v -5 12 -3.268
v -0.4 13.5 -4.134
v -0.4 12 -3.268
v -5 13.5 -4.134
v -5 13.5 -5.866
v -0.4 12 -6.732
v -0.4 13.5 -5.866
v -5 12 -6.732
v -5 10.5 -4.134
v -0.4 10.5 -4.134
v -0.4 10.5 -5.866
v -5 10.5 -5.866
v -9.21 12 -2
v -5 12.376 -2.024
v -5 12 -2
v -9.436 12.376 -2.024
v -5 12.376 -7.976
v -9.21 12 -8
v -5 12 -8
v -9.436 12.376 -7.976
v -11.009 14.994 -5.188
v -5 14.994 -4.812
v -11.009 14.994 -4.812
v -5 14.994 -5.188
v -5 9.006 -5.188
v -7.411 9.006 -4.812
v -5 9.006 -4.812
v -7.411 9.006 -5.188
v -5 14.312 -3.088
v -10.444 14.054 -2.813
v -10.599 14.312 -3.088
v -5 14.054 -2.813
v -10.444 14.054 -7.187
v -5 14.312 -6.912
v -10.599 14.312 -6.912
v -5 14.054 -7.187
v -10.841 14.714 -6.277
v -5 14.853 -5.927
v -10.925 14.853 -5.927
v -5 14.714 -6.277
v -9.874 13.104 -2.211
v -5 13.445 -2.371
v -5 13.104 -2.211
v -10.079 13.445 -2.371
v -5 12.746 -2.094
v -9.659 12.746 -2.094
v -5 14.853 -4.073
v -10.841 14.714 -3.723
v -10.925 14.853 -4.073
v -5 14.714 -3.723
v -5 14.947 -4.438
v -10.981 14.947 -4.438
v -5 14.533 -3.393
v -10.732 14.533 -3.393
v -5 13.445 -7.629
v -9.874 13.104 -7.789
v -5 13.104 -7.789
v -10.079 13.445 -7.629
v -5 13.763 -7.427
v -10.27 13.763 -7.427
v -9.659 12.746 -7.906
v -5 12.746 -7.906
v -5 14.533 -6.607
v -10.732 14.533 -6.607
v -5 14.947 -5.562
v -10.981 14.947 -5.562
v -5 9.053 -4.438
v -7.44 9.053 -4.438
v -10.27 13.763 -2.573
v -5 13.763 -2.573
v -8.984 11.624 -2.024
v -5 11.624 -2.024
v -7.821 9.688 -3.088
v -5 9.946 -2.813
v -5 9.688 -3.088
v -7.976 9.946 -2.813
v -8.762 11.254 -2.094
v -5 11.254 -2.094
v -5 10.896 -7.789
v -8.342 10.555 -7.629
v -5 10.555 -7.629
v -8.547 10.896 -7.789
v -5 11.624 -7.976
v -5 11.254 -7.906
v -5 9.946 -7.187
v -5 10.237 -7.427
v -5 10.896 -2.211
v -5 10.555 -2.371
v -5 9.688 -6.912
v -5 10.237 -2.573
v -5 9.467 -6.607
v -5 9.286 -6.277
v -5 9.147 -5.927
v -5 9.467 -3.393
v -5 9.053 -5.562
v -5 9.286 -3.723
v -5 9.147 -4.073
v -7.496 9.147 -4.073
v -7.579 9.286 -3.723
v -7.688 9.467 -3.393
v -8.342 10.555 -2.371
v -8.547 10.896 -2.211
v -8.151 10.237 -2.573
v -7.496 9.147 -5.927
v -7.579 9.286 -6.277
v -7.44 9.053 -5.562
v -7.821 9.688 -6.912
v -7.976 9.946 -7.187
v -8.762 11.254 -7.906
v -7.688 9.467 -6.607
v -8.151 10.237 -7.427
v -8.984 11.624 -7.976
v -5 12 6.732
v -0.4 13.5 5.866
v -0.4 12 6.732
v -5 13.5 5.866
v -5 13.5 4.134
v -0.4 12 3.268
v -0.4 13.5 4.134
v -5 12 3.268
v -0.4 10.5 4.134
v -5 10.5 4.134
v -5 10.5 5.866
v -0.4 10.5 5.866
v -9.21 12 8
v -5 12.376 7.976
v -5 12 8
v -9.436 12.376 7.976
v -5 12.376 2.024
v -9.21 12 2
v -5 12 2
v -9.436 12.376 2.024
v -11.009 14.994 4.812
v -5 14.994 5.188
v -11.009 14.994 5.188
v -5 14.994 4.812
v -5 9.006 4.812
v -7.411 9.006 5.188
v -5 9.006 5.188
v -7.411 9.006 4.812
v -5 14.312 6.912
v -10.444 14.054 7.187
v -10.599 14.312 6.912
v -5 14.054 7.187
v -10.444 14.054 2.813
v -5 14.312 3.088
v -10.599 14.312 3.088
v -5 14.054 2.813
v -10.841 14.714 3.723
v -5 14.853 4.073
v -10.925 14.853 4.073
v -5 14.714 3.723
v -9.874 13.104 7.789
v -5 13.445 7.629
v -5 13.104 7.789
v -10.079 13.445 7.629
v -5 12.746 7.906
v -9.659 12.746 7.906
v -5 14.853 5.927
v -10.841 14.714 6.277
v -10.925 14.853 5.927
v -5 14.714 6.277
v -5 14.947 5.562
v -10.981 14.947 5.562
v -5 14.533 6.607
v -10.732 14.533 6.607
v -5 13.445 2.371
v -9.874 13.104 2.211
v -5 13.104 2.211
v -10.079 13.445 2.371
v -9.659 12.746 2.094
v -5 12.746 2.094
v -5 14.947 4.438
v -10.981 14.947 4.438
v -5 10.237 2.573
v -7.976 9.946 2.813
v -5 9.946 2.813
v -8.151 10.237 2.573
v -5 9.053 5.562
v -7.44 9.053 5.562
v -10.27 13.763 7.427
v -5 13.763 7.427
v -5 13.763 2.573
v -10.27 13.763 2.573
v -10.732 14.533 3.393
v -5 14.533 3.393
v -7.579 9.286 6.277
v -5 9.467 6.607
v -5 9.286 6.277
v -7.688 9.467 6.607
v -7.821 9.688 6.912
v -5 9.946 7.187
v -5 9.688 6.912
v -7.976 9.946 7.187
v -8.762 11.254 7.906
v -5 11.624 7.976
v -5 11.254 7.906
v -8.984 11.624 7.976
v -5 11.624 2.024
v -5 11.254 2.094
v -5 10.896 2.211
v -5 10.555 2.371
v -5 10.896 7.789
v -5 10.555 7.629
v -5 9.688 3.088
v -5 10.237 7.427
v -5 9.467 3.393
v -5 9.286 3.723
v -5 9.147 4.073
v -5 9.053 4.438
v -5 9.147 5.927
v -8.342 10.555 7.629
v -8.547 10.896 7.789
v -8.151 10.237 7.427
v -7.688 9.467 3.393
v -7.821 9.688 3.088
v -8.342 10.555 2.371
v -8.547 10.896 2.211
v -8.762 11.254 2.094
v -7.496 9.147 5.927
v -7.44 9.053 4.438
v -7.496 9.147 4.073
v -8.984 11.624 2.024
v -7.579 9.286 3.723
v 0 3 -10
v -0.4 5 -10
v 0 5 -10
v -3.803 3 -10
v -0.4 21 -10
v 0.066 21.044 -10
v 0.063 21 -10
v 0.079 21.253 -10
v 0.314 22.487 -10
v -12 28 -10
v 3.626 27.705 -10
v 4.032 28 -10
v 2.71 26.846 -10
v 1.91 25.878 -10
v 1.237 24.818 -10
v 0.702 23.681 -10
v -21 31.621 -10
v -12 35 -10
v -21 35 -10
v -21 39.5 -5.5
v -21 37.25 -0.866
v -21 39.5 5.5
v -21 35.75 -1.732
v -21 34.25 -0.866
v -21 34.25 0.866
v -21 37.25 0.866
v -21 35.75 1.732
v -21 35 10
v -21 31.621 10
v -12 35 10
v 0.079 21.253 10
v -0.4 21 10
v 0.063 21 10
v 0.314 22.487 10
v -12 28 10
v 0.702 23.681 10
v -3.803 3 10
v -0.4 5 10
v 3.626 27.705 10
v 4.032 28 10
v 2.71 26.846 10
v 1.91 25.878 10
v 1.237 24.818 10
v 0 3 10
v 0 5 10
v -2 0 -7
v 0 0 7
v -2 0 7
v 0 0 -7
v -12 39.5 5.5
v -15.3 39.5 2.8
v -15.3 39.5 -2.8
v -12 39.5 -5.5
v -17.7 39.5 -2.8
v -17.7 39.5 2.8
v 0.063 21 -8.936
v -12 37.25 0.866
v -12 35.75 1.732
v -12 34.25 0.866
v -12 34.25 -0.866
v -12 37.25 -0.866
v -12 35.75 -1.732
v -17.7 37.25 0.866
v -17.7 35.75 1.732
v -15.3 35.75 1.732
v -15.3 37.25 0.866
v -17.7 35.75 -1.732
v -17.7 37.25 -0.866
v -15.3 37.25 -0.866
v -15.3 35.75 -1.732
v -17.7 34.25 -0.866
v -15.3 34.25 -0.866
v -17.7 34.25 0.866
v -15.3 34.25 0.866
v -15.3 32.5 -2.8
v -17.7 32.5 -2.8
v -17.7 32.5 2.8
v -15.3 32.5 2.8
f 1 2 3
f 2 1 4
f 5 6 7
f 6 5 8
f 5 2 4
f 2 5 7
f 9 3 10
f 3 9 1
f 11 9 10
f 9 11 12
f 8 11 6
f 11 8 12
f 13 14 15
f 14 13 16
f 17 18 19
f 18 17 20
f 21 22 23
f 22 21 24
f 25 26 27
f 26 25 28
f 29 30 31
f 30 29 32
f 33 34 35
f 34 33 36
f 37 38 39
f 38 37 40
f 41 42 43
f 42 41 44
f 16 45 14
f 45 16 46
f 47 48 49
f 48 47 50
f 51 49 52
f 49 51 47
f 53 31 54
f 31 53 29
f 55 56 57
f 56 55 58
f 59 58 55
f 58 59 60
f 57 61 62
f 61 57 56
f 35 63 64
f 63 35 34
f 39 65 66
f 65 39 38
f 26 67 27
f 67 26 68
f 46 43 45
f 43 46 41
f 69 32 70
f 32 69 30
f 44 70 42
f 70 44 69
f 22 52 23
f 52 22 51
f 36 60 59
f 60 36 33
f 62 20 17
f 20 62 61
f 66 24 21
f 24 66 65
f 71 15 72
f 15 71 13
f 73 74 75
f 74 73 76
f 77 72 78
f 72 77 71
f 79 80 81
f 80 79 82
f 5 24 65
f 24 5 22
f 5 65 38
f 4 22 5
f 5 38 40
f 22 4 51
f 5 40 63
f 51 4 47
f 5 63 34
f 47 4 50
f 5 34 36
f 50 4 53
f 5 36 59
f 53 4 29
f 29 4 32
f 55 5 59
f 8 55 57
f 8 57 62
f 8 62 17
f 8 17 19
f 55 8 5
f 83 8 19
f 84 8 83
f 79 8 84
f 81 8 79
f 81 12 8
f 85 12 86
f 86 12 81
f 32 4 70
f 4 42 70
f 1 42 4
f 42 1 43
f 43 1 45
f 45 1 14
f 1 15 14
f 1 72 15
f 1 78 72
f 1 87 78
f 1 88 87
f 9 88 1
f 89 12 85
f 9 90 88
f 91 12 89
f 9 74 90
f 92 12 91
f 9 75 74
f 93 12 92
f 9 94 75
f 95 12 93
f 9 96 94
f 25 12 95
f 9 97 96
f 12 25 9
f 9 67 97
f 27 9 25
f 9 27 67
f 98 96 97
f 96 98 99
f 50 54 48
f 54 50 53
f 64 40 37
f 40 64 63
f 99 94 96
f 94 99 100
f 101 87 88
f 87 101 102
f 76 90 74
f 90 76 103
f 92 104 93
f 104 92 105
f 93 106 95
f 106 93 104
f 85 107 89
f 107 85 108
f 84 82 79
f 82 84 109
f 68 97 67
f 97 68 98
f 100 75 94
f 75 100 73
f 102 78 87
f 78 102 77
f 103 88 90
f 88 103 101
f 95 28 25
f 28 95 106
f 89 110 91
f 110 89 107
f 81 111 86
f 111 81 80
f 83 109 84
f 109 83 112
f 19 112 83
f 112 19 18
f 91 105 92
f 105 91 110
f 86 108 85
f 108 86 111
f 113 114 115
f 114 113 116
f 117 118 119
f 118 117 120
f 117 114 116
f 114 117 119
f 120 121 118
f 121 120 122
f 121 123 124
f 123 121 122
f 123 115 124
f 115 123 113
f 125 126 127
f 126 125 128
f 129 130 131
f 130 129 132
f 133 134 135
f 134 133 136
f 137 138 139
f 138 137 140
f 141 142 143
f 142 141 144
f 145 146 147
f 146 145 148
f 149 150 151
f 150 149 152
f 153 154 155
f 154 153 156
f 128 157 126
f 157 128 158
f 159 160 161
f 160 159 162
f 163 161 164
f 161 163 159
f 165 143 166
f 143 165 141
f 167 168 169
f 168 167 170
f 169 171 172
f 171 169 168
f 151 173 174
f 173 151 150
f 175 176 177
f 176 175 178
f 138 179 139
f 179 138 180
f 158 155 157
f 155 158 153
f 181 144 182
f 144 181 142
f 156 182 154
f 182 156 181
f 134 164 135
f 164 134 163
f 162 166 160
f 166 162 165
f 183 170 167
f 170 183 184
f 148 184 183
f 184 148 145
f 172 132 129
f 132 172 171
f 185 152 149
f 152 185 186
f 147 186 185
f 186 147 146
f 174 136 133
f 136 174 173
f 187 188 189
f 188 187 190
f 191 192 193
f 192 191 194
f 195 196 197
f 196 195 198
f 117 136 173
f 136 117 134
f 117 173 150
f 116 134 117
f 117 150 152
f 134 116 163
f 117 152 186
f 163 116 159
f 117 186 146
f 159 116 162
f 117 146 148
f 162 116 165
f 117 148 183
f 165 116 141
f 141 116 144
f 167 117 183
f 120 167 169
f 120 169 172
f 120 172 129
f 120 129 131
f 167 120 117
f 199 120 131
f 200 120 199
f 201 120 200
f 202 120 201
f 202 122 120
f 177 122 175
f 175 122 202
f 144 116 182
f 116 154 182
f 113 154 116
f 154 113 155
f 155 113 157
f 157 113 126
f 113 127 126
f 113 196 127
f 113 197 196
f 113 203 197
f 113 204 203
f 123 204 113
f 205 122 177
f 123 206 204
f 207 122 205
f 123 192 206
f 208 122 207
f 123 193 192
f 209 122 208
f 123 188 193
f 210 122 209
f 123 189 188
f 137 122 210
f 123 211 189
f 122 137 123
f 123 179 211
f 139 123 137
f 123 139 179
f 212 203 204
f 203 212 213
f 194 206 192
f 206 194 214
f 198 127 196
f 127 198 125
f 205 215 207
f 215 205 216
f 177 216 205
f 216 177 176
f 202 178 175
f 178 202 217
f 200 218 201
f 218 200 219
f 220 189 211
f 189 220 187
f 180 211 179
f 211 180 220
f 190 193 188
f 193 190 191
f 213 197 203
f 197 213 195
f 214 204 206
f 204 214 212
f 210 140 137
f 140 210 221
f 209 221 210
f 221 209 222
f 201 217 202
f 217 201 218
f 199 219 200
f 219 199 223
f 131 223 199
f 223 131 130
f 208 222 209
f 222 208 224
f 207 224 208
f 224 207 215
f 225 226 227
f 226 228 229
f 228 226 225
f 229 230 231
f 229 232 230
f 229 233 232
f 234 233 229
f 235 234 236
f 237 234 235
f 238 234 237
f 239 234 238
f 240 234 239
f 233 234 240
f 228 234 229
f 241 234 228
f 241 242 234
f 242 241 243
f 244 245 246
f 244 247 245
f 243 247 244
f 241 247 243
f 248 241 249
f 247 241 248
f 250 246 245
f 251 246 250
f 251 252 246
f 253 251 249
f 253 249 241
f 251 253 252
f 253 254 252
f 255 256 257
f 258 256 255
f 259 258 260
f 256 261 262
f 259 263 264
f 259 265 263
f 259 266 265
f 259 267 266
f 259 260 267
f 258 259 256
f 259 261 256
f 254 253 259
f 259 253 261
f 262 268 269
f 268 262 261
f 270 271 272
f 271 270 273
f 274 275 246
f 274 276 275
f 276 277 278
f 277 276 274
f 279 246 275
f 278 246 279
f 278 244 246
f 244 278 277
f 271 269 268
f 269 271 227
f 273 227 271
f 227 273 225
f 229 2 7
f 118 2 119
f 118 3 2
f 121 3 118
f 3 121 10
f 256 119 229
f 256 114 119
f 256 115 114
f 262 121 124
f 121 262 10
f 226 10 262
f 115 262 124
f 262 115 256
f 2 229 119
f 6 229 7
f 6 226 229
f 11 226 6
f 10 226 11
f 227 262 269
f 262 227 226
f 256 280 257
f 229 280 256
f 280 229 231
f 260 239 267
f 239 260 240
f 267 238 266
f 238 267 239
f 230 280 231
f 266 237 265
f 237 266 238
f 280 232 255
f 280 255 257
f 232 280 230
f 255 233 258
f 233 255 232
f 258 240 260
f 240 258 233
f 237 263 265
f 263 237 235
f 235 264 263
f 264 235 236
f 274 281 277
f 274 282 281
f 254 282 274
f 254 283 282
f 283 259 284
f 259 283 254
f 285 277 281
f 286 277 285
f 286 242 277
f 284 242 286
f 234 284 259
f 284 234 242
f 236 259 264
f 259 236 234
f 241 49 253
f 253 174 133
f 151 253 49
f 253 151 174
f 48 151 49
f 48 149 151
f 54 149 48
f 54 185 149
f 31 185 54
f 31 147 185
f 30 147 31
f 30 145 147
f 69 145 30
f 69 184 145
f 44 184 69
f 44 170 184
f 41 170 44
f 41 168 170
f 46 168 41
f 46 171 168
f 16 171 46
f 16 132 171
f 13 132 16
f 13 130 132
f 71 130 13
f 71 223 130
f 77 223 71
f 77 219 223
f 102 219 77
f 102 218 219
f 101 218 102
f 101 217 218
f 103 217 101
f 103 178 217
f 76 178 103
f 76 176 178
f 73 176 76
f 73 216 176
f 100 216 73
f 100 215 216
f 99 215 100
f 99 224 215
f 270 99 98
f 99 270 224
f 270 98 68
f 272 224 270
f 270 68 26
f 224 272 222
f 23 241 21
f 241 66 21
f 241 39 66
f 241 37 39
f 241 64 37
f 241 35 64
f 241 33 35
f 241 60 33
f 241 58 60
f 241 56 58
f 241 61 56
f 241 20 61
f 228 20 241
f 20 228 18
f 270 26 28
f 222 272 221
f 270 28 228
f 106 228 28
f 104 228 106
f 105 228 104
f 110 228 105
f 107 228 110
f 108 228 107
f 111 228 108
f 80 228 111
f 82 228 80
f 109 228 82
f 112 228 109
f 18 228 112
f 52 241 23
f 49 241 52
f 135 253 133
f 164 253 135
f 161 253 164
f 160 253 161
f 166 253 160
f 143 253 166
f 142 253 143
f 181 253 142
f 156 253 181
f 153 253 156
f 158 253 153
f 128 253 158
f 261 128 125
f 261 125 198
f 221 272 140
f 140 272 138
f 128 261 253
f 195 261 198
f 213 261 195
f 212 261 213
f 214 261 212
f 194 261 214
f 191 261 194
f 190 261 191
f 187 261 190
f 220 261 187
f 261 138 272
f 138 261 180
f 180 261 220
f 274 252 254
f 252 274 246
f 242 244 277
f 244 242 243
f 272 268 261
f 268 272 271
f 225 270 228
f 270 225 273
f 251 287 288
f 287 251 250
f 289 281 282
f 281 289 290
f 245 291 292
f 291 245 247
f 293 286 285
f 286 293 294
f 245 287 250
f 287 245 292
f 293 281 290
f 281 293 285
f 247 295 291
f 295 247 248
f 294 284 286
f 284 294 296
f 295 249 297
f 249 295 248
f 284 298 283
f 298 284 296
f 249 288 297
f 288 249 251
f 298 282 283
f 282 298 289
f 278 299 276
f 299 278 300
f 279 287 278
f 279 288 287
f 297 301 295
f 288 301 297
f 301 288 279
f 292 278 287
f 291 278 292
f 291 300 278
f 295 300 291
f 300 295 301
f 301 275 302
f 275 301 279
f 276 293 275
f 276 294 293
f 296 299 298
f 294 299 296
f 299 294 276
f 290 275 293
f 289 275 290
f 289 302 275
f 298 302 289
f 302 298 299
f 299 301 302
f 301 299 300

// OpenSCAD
// file: polyhole_re.scad
// polyholes - correct diameter for printing holes
//
// See http://hydraraptor.blogspot.com/2011/02/polyholes.html
//
// inspired by Josef Prusa (Prusa i3)
//
// GNU GPL v3
// R.E. 2017.06



function polyhole_n(r) = max(round(4 * r),3);
function polyhole_radius(r) = r / cos (180 / polyhole_n(r));

module polyhole(h, r, center = false) {
    rotate([0,0,0])
        cylinder(h = h, r = polyhole_radius(r), center = center, $fn = polyhole_n(r));
}


//test
high=20;
radius=4;
cylinder(high,r=radius,center=false);
translate([-3*radius,0,0])
  polyhole(high,radius,center=false);
echo("<b>Radius=</b>",radius);
echo("<b>polyhole_rad_n=</b>",polyhole_n(radius));
echo("<b>polyhole_radius=</b>",polyhole_radius(radius));
// file: pushfit_hole_re.scad
// pushfit_hole - holes for rods
// corrected diameter 
// extension on top for printing without briding problems
//
// inspired by Josef Prusa (Prusa i3)
//
// GNU GPL v3
// R.E.

use <polyhole_re.scad>

module pushfit_hole(length,diameter,overhang_angle=60,bridge_distance=0.4){
    // for better printing 45° < overhang_angle < 90° 
  
  radius = diameter / 2;
     
  polyhole(length,radius,center=false);
  if (overhang_angle >= 45 && overhang_angle < 90)
    difference(){
      translate([0,polyhole_radius(radius) * (sin(overhang_angle) - 1 / sqrt(2) + cos(overhang_angle)),length/2]) rotate([0,0,45]) cube(size = [polyhole_radius(radius),polyhole_radius(radius),length], center = true);
    translate([0,5/4*radius+bridge_distance,length/2]) cube([radius ,radius/2,length+1], center = true);
 }
}


//test
rotate(a=[90,0,0])
  pushfit_hole(50,8,60,0.3);
// main file
// Anet A6 X-End - Z-Endstop
//
// GNU GPL v3
// R.E. 2017.06

use <pushfit_hole_re.scad>
use <polyhole_re.scad>

extraspace=0;
chamfer1=5;
chamfer2=3;

//printing orientation 
rotate([0,-90,0])
  translate([0,0,-10])

    difference(){
      translate([-10,0,0])
        cube([20,39.5,31],center=false);
      translate([-15,-5+extraspace,-10])
        cube([30,25,20+extraspace],center=false);
      translate([-15,+5,-10+.4])
        cube([30,16,20+extraspace],center=false);
      translate([0,20+extraspace,0])
        rotate([0,90,0])
          cylinder(30,r=10+extraspace,$fn=50,center=true);
      translate([-15,28,-10])
        cube([30,20,32],center=false);
      translate([0,0,2+10])
        rotate([-59,0,0])
          translate([-15,-20,0])
            cube([30,20,40],center=false);
      translate([13,37-chamfer1,0])
        rotate([0,0,45])
          translate([0,0,-5])
            cube([10,15,40],center=false);
      translate([-13,37-chamfer1,0])
        rotate([0,0,-45])
          translate([-10,0,-5])
            cube([10,15,40],center=false);
       translate([7-chamfer2,-3,0])
        rotate([0,0,-45])
          translate([0,0,-5])
            cube([10,15,40],center=false);
      translate([-7+chamfer2,-3,0])
        rotate([0,0,45])
          translate([-10,0,-5])
            cube([10,15,40],center=false);
      
      //screw holes
      translate([-5,12,0]){
        polyhole(100,1.5);
        translate([0,0,10+5])
          cylinder(20,r=3,$fn=50);
      }
      translate([5,12,0]){
        polyhole(100,1.5);
        translate([0,0,10+5])
          cylinder(20,r=3,$fn=50);
      }     
      translate([0,35.75,0])
        polyhole(100,1.5);
      translate([0,15+27.5,10+16.5])
            cube([5.6,20,2.4],center=true);  
    }
